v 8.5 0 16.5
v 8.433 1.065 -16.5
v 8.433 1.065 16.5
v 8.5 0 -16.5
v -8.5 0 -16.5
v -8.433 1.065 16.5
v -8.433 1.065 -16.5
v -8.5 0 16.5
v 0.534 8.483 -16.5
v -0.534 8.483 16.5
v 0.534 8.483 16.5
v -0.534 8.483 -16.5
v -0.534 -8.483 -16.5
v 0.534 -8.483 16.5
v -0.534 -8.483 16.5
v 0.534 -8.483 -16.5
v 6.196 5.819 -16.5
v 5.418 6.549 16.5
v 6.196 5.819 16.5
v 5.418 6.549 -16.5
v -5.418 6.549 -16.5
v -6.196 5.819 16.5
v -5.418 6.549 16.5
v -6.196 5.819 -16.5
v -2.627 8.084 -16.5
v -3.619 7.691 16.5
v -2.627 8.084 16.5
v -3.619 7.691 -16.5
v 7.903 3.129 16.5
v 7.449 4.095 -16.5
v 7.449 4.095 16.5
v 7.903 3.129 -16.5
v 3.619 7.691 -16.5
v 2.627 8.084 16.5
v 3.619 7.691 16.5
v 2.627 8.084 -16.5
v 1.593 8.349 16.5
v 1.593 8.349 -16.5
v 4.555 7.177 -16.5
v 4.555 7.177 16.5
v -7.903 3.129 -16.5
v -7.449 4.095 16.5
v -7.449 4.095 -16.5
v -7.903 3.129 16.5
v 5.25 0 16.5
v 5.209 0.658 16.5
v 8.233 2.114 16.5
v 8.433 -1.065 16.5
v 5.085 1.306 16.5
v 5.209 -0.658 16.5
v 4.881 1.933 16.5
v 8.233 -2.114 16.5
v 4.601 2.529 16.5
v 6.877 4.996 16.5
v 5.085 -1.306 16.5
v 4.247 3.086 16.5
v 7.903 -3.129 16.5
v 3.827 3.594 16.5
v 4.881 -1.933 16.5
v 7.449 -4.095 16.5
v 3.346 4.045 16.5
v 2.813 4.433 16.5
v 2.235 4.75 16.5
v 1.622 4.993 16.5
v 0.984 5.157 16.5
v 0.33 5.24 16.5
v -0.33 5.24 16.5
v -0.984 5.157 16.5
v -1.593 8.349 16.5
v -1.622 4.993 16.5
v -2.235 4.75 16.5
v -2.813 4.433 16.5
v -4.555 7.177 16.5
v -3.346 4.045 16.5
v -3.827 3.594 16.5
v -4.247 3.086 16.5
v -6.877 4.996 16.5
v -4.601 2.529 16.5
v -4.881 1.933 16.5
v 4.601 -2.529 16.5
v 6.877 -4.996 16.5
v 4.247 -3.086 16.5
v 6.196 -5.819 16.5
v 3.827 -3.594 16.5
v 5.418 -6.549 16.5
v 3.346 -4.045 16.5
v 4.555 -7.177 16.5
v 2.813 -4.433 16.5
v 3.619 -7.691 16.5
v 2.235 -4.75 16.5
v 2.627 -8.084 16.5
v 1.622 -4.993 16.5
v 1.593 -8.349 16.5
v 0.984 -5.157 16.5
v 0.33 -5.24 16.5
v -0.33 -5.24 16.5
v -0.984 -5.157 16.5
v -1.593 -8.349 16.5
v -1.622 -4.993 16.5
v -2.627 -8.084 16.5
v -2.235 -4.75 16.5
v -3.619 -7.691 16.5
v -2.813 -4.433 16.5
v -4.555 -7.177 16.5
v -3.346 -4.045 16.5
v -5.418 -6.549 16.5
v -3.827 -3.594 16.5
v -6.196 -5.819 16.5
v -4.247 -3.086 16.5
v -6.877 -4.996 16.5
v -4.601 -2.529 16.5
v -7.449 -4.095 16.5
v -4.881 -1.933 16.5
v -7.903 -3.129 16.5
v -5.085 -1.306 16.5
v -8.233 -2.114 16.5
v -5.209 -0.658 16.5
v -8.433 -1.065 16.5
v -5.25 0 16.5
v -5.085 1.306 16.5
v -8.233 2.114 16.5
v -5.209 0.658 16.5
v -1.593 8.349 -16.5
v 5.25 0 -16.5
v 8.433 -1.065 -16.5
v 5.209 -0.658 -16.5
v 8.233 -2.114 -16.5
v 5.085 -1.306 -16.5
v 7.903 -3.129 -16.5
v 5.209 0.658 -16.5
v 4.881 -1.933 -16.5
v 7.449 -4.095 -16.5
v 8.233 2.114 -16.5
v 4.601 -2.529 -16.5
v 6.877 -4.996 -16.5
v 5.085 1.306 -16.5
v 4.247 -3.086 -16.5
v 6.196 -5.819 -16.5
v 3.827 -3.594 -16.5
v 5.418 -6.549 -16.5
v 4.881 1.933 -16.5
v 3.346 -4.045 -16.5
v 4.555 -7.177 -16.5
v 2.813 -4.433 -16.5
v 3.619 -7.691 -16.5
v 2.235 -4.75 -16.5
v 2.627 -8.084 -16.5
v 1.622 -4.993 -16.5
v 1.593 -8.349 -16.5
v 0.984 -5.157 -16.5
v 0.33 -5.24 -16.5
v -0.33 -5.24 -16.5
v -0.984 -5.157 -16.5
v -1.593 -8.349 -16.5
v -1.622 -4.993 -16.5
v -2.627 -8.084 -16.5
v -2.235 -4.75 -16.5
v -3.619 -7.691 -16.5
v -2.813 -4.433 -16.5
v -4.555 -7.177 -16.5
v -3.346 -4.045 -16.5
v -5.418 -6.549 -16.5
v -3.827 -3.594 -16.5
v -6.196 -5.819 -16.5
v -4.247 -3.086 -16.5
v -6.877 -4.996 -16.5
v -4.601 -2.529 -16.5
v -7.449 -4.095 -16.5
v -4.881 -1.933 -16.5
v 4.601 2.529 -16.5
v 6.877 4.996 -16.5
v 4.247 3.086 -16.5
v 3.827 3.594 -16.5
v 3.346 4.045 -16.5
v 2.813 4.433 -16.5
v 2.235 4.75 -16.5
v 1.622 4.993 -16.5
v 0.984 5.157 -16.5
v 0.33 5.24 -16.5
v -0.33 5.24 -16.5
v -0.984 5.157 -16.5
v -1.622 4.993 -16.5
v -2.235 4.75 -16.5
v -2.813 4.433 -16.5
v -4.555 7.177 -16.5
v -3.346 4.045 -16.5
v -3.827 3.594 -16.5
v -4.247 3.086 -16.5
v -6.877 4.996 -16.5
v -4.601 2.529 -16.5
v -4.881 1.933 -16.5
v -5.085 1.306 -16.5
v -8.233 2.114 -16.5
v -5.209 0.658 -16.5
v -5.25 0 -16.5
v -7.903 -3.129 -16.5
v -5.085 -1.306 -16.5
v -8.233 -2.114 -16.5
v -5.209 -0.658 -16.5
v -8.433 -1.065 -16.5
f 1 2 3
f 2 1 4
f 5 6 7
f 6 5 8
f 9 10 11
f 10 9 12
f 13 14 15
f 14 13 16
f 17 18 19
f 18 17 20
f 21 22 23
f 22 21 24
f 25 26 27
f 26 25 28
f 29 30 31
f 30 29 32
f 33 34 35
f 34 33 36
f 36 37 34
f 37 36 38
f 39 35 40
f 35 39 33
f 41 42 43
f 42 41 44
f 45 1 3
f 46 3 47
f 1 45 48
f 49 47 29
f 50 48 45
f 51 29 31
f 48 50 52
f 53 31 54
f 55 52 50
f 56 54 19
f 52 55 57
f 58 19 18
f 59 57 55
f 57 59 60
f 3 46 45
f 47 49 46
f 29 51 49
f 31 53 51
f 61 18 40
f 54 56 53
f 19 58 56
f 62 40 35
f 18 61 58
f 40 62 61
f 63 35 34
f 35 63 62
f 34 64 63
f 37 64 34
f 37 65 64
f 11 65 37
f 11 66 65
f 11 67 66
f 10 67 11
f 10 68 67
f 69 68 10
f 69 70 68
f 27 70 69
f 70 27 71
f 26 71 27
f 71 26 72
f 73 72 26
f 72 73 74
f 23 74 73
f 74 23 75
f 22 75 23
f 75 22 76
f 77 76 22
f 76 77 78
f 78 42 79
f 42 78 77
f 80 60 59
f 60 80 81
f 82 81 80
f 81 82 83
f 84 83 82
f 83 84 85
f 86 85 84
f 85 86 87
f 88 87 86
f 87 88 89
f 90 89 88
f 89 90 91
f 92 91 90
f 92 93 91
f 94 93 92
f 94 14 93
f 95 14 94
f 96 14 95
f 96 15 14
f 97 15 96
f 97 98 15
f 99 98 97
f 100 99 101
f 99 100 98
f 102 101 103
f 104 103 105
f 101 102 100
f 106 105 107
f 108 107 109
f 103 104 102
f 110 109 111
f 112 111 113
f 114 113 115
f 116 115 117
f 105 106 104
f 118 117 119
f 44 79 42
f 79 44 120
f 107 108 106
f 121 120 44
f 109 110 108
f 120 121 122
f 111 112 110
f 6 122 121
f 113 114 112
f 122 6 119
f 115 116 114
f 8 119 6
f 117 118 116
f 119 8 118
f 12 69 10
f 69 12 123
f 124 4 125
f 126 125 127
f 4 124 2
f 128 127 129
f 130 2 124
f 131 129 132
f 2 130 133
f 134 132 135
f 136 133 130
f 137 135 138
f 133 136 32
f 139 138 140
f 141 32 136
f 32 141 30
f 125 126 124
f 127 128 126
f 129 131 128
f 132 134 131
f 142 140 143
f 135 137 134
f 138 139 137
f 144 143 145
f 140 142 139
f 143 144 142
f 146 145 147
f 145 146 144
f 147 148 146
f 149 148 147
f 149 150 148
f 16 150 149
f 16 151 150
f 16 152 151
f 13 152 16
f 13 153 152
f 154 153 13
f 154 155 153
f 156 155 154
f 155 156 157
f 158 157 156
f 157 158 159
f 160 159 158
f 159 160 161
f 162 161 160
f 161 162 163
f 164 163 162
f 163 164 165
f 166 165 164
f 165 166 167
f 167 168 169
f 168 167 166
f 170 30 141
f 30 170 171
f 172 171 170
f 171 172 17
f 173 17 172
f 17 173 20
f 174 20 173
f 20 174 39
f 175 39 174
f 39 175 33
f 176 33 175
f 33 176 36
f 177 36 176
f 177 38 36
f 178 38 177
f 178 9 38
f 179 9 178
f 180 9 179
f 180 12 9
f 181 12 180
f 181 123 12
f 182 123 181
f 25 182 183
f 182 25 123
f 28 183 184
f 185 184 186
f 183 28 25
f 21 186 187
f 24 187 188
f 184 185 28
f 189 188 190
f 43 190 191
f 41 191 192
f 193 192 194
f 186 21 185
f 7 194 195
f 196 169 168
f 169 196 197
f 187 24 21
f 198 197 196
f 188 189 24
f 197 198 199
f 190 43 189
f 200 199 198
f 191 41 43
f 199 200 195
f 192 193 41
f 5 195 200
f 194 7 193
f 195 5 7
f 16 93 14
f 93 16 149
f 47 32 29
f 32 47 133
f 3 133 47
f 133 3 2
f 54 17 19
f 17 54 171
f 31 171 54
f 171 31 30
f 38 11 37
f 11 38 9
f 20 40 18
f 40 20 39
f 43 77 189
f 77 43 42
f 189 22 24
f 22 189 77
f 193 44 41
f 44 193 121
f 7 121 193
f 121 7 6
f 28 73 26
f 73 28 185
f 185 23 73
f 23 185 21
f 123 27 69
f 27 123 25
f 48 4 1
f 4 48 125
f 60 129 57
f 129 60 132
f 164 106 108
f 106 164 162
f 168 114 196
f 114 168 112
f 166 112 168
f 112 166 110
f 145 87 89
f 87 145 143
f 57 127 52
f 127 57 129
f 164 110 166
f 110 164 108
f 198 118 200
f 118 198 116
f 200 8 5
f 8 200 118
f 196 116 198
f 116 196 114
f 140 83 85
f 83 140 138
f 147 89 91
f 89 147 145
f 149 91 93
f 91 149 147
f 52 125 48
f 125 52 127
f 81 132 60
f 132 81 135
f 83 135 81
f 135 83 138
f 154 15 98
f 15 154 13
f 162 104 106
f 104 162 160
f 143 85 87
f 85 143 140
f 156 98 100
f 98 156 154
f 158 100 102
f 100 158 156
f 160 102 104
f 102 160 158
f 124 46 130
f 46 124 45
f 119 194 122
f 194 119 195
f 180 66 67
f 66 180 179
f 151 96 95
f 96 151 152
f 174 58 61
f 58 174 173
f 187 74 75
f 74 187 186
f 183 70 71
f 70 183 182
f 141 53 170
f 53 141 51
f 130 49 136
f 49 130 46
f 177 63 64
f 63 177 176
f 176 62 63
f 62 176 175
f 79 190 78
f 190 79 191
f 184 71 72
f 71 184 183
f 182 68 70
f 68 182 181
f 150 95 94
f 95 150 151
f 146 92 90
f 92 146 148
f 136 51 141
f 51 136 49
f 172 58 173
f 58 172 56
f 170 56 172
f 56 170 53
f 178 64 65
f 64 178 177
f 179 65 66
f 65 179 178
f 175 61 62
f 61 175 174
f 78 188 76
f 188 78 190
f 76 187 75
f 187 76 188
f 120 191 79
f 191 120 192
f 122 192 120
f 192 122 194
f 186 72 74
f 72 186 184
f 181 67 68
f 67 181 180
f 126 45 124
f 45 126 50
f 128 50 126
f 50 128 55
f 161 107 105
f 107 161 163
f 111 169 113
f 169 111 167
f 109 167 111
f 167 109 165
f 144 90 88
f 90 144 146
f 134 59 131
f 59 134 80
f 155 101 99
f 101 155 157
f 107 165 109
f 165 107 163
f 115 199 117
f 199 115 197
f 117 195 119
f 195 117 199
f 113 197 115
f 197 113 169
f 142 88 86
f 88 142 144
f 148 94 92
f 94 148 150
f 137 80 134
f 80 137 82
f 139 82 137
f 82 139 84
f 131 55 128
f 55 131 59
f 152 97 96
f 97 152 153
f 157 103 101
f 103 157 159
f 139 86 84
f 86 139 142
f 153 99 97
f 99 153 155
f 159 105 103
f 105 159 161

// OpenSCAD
$fn = 50;


difference() {
	union() {
		translate(v = [0, 0, -16.5000000000]) {
			cylinder(h = 33, r = 8.5000000000);
		}
	}
	union() {
		translate(v = [0, 0, -100.0000000000]) {
			cylinder(h = 200, r = 5.2500000000);
		}
	}
}
